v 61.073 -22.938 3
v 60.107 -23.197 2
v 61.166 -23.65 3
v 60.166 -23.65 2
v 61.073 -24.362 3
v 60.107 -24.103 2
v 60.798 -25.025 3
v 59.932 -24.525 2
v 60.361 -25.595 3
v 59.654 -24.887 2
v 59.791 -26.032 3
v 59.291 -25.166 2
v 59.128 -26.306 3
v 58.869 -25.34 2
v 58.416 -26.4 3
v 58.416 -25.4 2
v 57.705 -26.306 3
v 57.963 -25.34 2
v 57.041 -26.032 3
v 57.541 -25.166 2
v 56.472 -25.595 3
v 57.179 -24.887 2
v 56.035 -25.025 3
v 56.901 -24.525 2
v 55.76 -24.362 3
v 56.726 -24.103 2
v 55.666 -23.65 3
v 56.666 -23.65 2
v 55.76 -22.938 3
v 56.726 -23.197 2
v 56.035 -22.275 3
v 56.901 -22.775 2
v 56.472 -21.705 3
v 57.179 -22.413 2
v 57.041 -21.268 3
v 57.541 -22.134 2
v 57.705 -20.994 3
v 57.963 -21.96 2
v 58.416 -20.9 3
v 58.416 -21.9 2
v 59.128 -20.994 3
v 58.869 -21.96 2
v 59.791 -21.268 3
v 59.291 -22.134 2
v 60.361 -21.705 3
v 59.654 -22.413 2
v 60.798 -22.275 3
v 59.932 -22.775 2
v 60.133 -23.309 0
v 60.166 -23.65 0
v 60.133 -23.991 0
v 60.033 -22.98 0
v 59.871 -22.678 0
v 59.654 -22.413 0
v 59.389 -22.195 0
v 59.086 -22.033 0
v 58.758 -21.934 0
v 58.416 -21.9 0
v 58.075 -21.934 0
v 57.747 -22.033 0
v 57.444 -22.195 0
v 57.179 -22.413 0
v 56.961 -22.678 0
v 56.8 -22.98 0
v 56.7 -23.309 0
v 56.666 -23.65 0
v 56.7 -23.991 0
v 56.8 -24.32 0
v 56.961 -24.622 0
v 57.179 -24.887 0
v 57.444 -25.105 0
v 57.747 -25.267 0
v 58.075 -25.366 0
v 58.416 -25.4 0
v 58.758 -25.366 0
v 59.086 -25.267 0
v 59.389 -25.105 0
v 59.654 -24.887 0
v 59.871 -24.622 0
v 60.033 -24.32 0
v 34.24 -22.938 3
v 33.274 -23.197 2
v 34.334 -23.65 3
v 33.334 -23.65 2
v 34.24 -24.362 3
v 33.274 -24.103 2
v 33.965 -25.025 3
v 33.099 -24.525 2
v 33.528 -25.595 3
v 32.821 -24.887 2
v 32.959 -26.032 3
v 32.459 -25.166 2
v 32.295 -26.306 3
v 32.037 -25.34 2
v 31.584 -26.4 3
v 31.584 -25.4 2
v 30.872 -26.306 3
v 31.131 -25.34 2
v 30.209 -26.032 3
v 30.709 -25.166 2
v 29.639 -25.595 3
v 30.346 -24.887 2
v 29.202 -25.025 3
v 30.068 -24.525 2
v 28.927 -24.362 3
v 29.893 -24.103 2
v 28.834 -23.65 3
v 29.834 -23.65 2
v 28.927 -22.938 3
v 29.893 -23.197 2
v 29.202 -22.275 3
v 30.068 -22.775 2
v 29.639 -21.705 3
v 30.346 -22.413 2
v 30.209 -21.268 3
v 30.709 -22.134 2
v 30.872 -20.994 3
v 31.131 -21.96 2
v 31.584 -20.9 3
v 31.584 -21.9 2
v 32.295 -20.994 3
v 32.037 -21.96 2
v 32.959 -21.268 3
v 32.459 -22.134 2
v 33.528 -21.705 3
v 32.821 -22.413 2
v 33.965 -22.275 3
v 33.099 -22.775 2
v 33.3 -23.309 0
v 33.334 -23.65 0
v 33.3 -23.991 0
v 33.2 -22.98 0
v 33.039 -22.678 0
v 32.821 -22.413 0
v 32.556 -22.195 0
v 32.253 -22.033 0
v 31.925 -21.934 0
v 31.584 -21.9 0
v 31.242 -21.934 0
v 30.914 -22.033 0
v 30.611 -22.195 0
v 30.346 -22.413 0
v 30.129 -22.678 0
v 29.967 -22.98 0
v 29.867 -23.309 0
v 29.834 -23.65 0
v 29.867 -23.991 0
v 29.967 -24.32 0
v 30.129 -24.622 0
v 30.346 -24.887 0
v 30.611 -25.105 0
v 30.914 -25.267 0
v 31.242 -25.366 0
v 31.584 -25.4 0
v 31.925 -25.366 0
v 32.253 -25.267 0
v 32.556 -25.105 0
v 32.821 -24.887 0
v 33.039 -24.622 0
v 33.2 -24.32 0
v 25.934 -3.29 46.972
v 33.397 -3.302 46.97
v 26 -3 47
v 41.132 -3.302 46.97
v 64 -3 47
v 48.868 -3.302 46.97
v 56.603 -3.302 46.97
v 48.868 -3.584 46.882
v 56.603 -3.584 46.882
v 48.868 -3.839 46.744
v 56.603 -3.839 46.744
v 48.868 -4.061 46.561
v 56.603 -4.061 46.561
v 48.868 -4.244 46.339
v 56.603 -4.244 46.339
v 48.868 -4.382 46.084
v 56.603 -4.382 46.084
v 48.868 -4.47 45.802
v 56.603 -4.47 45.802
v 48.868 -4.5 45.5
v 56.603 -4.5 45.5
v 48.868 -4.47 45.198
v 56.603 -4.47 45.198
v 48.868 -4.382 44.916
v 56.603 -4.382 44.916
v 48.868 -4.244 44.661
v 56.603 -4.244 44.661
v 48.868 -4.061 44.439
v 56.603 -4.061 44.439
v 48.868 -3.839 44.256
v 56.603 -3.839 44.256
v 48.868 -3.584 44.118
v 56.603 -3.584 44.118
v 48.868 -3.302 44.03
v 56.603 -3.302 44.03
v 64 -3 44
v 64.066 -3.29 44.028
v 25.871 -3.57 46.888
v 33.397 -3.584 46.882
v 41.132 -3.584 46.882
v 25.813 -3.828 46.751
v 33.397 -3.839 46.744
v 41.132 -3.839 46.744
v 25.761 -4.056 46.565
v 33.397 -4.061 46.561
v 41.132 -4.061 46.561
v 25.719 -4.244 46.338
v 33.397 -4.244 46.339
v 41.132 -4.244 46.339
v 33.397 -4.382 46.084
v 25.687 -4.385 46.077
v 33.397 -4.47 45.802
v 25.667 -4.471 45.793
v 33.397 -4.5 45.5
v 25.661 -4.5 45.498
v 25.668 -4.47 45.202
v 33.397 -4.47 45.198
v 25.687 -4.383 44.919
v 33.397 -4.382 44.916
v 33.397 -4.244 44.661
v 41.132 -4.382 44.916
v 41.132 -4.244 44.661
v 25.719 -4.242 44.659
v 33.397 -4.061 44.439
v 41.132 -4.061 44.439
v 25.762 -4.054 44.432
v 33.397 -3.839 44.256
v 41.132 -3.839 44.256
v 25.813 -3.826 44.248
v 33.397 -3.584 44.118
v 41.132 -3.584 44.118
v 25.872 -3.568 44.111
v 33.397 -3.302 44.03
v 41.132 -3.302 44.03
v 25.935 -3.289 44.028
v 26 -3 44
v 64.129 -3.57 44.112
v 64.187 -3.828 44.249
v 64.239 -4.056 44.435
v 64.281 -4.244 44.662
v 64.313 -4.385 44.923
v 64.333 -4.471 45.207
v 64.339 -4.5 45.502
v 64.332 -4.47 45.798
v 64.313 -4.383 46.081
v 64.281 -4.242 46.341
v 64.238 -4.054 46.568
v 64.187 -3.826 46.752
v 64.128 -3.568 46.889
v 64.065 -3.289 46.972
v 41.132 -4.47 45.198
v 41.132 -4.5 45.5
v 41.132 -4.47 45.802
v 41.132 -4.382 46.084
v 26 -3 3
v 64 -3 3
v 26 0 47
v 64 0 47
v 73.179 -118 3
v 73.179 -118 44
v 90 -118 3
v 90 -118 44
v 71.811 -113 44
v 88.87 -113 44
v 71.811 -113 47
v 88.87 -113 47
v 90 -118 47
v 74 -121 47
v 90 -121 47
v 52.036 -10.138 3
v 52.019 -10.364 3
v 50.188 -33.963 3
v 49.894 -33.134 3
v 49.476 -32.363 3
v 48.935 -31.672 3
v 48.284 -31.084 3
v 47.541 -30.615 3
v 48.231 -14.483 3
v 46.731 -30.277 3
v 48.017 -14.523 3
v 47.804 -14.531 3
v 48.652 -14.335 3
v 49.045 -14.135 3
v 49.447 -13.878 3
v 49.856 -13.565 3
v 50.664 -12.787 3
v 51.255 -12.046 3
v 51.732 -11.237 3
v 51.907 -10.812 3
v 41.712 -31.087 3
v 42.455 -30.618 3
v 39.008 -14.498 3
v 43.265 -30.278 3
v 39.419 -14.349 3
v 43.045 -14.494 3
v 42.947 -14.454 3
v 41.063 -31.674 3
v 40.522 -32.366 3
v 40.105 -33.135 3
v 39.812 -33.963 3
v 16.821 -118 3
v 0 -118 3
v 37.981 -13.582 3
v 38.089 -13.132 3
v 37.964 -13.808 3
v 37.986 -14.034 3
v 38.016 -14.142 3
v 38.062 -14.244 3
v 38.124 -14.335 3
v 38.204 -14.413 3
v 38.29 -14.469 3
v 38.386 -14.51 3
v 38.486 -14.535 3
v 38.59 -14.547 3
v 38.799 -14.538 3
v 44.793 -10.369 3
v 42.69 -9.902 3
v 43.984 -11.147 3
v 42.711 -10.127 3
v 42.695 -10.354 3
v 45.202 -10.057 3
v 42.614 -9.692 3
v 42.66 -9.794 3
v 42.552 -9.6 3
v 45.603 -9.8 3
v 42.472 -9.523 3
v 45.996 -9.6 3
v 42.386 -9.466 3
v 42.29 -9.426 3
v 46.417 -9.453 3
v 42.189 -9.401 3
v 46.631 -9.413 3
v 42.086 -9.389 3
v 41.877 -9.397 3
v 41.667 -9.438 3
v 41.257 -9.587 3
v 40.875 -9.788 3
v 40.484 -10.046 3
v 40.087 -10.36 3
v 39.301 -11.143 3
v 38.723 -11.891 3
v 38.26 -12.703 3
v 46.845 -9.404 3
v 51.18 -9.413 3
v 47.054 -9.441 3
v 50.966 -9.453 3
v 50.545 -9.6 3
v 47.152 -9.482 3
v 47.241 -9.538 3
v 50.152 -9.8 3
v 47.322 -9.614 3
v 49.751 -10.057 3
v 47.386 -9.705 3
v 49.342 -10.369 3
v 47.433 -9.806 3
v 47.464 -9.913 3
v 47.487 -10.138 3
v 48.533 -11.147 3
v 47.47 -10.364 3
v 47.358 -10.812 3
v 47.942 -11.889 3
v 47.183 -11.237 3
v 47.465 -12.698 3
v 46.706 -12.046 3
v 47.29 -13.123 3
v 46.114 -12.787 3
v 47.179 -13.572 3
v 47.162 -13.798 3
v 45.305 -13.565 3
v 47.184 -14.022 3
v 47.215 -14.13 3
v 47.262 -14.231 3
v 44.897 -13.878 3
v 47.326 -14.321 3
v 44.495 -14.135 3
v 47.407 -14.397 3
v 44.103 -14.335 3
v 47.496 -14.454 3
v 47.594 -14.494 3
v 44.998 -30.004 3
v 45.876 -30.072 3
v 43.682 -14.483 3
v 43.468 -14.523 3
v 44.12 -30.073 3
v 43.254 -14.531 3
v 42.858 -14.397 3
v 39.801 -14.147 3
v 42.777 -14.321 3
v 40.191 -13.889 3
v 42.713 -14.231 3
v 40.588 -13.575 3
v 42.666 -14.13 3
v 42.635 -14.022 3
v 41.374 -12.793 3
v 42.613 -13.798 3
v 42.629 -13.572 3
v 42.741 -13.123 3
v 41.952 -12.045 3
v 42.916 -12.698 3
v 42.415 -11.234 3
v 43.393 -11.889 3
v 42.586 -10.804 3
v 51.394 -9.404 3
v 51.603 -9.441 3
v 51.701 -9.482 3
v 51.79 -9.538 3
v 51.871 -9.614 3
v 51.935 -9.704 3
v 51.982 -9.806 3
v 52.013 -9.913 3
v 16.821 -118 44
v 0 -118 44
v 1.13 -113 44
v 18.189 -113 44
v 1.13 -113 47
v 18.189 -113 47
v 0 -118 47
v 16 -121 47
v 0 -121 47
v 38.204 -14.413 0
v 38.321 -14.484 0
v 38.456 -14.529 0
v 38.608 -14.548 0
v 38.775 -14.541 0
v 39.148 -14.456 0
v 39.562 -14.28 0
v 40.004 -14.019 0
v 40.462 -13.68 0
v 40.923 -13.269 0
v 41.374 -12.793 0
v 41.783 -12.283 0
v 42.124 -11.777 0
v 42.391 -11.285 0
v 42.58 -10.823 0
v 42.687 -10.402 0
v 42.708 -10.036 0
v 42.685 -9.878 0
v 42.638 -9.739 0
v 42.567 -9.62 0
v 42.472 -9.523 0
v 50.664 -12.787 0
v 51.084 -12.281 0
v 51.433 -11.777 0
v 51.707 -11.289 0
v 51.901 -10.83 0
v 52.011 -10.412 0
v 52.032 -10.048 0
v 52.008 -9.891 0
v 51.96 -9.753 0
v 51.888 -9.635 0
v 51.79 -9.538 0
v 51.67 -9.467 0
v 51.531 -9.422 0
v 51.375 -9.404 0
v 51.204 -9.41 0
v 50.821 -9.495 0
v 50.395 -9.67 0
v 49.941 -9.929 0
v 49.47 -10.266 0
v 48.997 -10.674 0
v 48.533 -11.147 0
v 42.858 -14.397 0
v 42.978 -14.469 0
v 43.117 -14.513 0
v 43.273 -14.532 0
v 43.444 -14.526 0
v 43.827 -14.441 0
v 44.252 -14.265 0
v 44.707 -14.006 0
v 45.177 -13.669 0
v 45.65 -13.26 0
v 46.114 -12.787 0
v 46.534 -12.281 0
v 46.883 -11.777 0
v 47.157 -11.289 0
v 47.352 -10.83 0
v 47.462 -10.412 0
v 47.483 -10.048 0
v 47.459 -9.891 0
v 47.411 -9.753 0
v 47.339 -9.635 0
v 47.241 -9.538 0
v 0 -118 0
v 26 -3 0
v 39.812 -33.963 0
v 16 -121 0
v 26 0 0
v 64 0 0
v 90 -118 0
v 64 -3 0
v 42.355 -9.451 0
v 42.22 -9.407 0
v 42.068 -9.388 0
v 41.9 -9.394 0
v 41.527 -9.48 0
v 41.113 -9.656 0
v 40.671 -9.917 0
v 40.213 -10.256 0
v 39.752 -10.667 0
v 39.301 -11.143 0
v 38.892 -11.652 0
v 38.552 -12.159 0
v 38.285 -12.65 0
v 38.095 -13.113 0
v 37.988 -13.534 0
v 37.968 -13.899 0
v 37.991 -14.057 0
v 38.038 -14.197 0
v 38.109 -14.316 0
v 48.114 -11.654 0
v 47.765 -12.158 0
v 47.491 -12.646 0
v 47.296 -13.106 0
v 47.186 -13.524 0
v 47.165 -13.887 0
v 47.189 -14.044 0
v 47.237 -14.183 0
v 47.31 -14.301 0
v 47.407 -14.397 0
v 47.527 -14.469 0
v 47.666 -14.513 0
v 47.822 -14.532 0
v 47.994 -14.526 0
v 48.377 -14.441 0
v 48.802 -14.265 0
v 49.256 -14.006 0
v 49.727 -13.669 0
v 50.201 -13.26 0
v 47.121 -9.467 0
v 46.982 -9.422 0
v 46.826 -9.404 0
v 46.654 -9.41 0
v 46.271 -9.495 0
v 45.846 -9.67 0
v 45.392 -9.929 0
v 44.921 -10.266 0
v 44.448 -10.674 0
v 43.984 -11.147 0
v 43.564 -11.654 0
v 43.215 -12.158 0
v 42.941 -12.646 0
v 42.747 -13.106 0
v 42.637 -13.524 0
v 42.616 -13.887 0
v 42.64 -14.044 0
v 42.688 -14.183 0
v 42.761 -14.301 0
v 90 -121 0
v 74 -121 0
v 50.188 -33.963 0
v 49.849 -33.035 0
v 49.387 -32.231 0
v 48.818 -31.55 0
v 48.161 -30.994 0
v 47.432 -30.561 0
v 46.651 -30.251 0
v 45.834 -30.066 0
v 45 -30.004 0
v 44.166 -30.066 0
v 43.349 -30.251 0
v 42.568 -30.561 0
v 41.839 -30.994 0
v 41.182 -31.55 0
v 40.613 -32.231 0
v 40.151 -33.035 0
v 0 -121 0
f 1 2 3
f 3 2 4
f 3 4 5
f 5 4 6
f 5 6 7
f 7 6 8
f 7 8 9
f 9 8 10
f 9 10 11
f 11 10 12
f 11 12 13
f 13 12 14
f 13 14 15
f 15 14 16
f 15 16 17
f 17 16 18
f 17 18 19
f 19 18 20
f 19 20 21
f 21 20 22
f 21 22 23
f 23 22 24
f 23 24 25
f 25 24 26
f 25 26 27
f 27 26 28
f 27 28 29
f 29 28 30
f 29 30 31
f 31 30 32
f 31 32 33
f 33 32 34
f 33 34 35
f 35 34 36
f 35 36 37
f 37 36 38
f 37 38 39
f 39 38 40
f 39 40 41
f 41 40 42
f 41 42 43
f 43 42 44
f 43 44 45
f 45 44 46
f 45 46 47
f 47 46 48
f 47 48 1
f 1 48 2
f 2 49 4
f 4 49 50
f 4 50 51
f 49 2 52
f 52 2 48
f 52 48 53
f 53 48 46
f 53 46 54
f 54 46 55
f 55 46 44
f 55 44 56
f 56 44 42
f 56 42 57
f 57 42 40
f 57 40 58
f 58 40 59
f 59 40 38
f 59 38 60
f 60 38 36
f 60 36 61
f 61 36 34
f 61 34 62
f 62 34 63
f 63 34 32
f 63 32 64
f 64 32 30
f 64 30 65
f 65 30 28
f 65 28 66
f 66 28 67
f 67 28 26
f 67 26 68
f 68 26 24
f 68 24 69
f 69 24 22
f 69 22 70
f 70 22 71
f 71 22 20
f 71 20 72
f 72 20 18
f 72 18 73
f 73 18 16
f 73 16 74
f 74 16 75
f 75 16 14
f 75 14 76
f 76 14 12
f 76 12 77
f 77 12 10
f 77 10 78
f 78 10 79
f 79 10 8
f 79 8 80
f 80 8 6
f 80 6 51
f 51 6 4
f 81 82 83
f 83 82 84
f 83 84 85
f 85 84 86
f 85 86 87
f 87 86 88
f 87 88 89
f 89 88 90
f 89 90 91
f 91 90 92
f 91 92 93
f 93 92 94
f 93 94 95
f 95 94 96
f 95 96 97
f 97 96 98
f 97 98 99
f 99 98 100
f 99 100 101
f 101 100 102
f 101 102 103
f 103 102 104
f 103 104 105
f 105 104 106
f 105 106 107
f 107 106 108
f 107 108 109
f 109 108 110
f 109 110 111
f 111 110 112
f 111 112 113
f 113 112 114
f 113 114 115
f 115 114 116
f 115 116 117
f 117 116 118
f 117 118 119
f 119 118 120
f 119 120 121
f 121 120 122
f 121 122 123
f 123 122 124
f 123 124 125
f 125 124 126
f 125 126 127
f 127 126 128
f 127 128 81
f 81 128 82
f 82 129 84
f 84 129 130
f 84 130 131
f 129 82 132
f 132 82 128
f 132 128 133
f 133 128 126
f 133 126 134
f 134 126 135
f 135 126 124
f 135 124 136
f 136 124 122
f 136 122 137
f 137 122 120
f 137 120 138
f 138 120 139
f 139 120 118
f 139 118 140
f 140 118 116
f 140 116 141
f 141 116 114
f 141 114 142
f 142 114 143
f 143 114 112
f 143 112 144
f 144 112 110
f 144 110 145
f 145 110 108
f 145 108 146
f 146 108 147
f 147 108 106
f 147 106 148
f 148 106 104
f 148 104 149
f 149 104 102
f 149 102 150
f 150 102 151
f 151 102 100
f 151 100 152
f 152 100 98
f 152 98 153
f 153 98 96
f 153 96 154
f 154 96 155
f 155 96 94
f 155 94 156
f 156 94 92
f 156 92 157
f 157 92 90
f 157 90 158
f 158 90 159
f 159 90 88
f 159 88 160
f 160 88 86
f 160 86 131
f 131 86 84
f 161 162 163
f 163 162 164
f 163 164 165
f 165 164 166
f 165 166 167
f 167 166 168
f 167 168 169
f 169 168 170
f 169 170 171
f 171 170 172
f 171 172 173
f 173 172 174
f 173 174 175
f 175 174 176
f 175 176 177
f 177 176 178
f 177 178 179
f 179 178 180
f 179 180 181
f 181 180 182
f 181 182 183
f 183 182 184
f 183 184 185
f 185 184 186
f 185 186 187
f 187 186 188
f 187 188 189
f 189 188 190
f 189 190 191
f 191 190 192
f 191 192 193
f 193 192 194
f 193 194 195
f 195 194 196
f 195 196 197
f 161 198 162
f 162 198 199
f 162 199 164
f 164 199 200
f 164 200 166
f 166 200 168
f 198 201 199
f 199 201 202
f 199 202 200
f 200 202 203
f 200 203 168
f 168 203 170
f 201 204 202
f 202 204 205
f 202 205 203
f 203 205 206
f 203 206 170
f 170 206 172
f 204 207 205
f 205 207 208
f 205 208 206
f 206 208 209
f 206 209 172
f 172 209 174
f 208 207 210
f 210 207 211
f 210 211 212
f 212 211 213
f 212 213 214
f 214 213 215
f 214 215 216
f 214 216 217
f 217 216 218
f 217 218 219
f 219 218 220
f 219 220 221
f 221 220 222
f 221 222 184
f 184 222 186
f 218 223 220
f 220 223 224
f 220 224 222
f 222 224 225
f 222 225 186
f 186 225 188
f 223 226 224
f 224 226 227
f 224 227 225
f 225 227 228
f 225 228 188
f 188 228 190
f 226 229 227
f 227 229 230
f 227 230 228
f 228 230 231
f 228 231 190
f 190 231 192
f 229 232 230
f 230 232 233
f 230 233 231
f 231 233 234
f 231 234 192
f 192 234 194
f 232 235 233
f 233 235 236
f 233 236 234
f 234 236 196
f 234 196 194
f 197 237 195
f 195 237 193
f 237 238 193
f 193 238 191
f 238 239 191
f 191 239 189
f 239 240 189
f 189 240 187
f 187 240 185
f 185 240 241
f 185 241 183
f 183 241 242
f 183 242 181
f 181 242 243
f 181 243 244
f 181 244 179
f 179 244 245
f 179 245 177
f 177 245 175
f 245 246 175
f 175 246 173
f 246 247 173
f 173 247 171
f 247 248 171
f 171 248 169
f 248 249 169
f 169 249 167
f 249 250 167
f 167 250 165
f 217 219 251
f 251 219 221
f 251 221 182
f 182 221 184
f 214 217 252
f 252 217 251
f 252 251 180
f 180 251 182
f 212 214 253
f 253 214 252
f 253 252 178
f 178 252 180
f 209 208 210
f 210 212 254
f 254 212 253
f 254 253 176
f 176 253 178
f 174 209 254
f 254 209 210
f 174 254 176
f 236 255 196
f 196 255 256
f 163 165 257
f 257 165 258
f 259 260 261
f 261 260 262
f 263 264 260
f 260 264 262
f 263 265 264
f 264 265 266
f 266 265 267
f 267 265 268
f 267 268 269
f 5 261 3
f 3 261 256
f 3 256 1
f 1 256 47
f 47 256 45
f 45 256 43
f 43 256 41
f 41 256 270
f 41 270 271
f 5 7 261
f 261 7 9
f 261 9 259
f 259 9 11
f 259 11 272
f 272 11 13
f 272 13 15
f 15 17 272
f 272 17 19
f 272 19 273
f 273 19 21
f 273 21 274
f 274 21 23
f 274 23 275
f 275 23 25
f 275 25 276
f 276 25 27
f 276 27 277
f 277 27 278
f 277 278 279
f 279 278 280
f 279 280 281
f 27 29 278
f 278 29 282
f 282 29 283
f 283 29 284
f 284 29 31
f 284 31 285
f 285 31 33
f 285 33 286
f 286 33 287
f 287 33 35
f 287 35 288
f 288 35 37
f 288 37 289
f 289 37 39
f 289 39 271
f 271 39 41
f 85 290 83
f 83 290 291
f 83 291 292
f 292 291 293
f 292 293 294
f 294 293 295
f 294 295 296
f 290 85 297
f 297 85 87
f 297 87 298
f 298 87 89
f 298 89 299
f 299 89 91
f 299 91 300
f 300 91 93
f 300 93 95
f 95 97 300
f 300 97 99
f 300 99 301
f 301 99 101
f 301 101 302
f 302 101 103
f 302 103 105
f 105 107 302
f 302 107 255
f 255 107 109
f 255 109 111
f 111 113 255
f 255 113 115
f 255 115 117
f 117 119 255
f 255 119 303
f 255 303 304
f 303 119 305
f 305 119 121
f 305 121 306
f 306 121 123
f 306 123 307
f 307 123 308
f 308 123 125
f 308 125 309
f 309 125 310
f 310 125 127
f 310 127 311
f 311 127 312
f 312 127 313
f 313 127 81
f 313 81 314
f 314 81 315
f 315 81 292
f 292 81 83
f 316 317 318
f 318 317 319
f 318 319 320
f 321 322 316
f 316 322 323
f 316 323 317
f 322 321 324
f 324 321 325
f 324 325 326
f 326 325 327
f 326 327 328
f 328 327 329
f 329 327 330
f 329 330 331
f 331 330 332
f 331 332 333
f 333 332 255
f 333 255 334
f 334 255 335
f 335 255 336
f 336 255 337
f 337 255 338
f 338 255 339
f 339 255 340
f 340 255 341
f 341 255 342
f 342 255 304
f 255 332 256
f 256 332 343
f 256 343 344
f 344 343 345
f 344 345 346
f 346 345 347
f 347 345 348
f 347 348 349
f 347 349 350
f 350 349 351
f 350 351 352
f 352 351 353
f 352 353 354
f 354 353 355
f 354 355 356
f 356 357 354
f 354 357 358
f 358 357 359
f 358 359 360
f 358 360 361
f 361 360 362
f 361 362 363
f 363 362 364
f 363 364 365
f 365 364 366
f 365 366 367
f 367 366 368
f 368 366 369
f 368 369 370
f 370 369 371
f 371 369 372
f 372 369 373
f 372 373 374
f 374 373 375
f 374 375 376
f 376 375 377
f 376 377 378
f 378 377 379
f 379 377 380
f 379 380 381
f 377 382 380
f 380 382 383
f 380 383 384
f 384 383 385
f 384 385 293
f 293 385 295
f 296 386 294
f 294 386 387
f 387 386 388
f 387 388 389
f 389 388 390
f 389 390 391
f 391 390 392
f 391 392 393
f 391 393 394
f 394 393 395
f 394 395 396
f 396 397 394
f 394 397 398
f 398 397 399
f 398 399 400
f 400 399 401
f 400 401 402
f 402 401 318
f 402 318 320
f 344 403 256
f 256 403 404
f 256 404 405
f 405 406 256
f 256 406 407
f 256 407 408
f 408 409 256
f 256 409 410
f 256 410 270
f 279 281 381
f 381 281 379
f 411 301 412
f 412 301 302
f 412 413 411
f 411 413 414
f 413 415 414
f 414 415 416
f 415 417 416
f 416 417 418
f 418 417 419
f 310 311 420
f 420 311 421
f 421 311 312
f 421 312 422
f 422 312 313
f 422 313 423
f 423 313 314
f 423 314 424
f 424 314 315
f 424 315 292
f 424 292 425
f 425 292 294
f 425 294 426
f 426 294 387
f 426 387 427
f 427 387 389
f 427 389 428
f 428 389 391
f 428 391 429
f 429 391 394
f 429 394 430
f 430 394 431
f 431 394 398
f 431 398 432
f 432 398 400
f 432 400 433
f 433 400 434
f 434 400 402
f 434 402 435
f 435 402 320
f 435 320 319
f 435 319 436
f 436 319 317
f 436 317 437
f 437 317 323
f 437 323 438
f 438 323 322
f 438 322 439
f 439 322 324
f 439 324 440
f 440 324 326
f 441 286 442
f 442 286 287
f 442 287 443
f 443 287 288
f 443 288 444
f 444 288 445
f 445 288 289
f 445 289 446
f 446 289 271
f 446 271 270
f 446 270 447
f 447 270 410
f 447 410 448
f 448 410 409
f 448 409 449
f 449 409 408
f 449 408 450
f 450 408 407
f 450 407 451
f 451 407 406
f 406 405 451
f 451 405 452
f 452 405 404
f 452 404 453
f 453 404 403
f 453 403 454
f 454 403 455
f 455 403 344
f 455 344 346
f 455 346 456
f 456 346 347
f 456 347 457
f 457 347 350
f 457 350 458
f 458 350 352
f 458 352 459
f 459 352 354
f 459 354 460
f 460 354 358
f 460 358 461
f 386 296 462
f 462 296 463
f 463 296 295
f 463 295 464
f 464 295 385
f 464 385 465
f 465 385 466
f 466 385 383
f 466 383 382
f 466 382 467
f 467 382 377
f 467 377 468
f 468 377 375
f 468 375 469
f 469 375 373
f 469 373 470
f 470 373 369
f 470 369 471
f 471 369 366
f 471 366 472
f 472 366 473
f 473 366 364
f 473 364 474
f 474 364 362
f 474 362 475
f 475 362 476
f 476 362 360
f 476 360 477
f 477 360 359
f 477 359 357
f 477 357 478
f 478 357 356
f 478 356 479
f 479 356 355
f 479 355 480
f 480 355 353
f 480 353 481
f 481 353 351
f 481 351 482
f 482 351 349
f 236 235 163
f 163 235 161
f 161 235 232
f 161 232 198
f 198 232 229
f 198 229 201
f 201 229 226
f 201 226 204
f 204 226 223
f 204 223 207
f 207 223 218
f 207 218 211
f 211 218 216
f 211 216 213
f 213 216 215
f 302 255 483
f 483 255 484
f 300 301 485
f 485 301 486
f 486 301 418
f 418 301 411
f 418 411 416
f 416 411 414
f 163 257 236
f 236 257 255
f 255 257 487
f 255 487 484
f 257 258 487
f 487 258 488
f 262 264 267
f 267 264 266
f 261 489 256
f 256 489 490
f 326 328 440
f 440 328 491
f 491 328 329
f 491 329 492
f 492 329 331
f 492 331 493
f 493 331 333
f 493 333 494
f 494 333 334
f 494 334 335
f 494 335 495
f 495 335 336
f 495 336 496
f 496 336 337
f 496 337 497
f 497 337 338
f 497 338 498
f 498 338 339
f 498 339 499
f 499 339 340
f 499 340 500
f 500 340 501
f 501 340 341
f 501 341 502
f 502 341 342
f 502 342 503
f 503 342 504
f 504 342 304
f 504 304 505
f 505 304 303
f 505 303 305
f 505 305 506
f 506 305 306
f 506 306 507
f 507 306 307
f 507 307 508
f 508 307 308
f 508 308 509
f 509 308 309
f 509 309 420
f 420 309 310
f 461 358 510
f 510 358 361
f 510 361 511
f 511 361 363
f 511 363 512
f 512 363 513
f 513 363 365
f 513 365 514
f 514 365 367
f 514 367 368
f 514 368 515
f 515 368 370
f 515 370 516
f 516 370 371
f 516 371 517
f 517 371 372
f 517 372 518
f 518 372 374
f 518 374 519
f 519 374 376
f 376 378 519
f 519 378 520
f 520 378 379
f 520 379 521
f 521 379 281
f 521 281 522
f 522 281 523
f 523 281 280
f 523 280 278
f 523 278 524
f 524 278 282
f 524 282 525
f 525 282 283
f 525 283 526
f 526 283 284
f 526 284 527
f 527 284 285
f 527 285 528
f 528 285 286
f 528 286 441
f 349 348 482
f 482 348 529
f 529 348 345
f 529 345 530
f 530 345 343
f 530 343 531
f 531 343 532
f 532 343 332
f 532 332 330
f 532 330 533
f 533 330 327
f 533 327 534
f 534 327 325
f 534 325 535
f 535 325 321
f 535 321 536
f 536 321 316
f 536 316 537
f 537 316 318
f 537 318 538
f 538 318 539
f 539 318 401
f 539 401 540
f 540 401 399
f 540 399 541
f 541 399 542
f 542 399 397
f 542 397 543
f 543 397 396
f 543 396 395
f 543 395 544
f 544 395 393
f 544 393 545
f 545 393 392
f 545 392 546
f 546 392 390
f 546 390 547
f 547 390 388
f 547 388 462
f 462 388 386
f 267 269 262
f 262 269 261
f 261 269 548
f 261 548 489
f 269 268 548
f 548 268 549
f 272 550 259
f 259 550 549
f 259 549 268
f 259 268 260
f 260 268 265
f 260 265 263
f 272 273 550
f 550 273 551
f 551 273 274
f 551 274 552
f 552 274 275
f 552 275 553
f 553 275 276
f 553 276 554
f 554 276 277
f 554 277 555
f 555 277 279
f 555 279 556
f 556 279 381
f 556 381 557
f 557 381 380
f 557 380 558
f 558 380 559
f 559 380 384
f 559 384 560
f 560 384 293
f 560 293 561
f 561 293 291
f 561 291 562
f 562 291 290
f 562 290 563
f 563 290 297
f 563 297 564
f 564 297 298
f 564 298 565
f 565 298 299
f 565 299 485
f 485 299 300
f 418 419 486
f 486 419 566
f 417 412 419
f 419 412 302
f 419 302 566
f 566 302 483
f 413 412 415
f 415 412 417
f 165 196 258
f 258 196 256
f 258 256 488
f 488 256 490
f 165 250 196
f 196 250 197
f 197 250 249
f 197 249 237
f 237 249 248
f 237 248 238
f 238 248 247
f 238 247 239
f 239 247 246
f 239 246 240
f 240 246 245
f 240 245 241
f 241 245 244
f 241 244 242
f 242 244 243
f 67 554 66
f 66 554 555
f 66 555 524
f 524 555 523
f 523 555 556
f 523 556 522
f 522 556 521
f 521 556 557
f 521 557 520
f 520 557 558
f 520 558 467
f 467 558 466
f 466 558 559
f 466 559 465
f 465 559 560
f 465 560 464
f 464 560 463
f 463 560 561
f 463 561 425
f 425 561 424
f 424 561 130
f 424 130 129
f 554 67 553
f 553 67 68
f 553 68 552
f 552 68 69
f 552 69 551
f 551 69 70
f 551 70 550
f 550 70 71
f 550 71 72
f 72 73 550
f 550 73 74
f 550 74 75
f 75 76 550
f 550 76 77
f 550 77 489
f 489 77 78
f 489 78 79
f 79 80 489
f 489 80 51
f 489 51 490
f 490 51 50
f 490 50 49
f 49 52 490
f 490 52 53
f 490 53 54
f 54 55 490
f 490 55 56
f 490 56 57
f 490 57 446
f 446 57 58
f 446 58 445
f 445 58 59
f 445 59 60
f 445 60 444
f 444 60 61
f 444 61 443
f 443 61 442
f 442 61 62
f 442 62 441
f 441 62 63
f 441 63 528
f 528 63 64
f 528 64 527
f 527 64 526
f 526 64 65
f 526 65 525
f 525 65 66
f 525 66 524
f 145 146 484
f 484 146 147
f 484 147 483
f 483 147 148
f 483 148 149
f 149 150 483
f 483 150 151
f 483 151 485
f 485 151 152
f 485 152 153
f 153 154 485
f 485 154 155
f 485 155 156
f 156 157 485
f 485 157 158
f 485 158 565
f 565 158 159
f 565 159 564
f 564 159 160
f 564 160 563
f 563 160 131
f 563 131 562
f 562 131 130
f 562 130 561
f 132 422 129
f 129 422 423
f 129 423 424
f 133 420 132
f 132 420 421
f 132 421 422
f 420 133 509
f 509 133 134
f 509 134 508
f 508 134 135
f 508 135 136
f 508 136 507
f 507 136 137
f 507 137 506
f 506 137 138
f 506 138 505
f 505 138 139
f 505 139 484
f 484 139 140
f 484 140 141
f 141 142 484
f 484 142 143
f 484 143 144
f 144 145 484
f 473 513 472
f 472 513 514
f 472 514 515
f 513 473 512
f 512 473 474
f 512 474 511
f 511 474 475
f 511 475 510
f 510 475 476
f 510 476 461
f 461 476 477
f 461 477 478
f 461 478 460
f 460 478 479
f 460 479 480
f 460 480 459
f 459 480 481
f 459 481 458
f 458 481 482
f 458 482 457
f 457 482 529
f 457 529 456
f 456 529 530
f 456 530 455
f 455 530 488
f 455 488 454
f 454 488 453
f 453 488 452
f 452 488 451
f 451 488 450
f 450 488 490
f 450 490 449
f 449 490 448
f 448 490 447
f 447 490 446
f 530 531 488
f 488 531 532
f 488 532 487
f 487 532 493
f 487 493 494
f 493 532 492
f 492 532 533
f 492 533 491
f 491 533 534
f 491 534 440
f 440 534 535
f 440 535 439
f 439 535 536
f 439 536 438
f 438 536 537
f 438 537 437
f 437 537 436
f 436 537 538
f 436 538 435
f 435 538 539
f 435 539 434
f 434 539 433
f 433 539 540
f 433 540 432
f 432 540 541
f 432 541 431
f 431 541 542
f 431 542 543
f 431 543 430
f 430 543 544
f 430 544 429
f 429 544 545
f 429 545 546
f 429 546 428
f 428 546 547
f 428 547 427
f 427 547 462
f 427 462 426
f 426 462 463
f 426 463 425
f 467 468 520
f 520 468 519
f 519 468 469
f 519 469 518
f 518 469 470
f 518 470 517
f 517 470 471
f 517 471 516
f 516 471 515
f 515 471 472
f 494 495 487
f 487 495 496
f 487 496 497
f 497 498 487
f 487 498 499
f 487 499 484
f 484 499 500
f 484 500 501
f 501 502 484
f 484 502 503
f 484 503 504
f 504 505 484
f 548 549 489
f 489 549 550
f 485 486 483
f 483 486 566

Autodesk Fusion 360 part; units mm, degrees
sketch "Top" plane through (0, 0, 0) normal (0, 0, 1) x (1, 0, 0)
  spline S0 degree 3 poles (50.664, -12.787) (49.4535, -14.1293) (47.9947, -14.8503) (47.407, -14.3973) knots 0 0 0 0 1 1 1 1
  spline S1 degree 3 poles (47.407, -14.3973) (46.8193, -13.9442) (47.3242, -12.4896) (48.5334, -11.1472) knots 1 1 1 1 2 2 2 2
  spline S2 degree 3 poles (48.5334, -11.1472) (49.7439, -9.8062) (51.2028, -9.0852) (51.7904, -9.5383) knots 2 2 2 2 3 3 3 3
  spline S3 degree 3 poles (51.7904, -9.5383) (52.3782, -9.9914) (51.8732, -11.446) (50.664, -12.787) knots 3 3 3 3 4 4 4 4
  spline S4 degree 3 poles (42.858, -14.3973) (42.2703, -13.9442) (42.7739, -12.4896) (43.9844, -11.1472) knots 0 0 0 0 1 1 1 1
  spline S5 degree 3 poles (43.9844, -11.1472) (45.1949, -9.8062) (46.6523, -9.0852) (47.2415, -9.5383) knots 1 1 1 1 2 2 2 2
  spline S6 degree 3 poles (47.2415, -9.5383) (47.8292, -9.9914) (47.3242, -11.446) (46.1137, -12.787) knots 2 2 2 2 3 3 3 3
  spline S7 degree 3 poles (46.1137, -12.787) (44.9032, -14.1293) (43.4458, -14.8503) (42.858, -14.3973) knots 3 3 3 3 4 4 4 4
  spline S8 degree 3 poles (38.2038, -14.4127) (37.6302, -13.9568) (38.1225, -12.4924) (39.3008, -11.143) knots 0 0 0 0 1 1 1 1
  spline S9 degree 3 poles (39.3008, -11.143) (40.4791, -9.7922) (41.8986, -9.0684) (42.4723, -9.5229) knots 1 1 1 1 2 2 2 2
  spline S10 degree 3 poles (42.4723, -9.5229) (43.0446, -9.9788) (42.5536, -11.4432) (41.374, -12.7926) knots 2 2 2 2 3 3 3 3
  spline S11 degree 3 poles (41.374, -12.7926) (40.1957, -14.1434) (38.7761, -14.8672) (38.2038, -14.4127) knots 3 3 3 3 4 4 4 4
  line L0 (64, -3) -> (64, 0)
  line L1 (64, 0) -> (26, 0)
  line L2 (26, 0) -> (26, -3)
  line L3 (26, -3) -> (0, -118)
  line L4 (0, -118) -> (0, -121)
  line L5 (0, -121) -> (16, -121)
  line L6 (16, -121) -> (39.812, -33.9631)
  spline S12 degree 3 poles (39.812, -33.9631) (41.2562, -28.684) (48.7438, -28.684) (50.188, -33.9631) knots 7 7 7 7 8 8 8 8
  line L7 (50.188, -33.9631) -> (74, -121)
  line L8 (74, -121) -> (90, -121)
  line L9 (90, -121) -> (90, -118)
  line L10 (90, -118) -> (64, -3)
extrude "Extrude1" add sketch "Top" along normal blind 57
sketch "RightSideCut" plane through (0, 0, 0) normal (1, 0, 0) x (0, 1, 0)
  line L0 (-121, 57) -> (-121, 47)
  line L1 (-121, 47) -> (-113, 47)
  line L2 (-113, 47) -> (-113, 44)
  line L3 (-113, 44) -> (-118, 44)
  line L4 (-118, 44) -> (-118, 3)
  line L5 (-118, 3) -> (-3, 3)
  line L6 (-3, 3) -> (-3, 44)
  spline S0 degree 3 poles (-3, 44) (-3.8284, 44) (-4.5, 44.6716) (-4.5, 46.3285) (-3.8284, 47) (-3, 47) knots 7 7 7 7 8 8 9 9 9 9
  line L7 (-3, 47) -> (0, 47)
  line L8 (0, 47) -> (0, 57)
  line L9 (0, 57) -> (-121, 57)
extrude "Extrude2" cut sketch "RightSideCut" along normal blind 90
hole "Hole1" at (31.5835, -23.65, 3) direction (0, 0, -1) diameter 3.5 depth 3 tip angle 118 countersink diameter 5.5 countersink angle 90
hole "Hole2" at (58.4162, -23.65, 3) direction (0, 0, -1) diameter 3.5 depth 3 tip angle 118 countersink diameter 5.5 countersink angle 90
